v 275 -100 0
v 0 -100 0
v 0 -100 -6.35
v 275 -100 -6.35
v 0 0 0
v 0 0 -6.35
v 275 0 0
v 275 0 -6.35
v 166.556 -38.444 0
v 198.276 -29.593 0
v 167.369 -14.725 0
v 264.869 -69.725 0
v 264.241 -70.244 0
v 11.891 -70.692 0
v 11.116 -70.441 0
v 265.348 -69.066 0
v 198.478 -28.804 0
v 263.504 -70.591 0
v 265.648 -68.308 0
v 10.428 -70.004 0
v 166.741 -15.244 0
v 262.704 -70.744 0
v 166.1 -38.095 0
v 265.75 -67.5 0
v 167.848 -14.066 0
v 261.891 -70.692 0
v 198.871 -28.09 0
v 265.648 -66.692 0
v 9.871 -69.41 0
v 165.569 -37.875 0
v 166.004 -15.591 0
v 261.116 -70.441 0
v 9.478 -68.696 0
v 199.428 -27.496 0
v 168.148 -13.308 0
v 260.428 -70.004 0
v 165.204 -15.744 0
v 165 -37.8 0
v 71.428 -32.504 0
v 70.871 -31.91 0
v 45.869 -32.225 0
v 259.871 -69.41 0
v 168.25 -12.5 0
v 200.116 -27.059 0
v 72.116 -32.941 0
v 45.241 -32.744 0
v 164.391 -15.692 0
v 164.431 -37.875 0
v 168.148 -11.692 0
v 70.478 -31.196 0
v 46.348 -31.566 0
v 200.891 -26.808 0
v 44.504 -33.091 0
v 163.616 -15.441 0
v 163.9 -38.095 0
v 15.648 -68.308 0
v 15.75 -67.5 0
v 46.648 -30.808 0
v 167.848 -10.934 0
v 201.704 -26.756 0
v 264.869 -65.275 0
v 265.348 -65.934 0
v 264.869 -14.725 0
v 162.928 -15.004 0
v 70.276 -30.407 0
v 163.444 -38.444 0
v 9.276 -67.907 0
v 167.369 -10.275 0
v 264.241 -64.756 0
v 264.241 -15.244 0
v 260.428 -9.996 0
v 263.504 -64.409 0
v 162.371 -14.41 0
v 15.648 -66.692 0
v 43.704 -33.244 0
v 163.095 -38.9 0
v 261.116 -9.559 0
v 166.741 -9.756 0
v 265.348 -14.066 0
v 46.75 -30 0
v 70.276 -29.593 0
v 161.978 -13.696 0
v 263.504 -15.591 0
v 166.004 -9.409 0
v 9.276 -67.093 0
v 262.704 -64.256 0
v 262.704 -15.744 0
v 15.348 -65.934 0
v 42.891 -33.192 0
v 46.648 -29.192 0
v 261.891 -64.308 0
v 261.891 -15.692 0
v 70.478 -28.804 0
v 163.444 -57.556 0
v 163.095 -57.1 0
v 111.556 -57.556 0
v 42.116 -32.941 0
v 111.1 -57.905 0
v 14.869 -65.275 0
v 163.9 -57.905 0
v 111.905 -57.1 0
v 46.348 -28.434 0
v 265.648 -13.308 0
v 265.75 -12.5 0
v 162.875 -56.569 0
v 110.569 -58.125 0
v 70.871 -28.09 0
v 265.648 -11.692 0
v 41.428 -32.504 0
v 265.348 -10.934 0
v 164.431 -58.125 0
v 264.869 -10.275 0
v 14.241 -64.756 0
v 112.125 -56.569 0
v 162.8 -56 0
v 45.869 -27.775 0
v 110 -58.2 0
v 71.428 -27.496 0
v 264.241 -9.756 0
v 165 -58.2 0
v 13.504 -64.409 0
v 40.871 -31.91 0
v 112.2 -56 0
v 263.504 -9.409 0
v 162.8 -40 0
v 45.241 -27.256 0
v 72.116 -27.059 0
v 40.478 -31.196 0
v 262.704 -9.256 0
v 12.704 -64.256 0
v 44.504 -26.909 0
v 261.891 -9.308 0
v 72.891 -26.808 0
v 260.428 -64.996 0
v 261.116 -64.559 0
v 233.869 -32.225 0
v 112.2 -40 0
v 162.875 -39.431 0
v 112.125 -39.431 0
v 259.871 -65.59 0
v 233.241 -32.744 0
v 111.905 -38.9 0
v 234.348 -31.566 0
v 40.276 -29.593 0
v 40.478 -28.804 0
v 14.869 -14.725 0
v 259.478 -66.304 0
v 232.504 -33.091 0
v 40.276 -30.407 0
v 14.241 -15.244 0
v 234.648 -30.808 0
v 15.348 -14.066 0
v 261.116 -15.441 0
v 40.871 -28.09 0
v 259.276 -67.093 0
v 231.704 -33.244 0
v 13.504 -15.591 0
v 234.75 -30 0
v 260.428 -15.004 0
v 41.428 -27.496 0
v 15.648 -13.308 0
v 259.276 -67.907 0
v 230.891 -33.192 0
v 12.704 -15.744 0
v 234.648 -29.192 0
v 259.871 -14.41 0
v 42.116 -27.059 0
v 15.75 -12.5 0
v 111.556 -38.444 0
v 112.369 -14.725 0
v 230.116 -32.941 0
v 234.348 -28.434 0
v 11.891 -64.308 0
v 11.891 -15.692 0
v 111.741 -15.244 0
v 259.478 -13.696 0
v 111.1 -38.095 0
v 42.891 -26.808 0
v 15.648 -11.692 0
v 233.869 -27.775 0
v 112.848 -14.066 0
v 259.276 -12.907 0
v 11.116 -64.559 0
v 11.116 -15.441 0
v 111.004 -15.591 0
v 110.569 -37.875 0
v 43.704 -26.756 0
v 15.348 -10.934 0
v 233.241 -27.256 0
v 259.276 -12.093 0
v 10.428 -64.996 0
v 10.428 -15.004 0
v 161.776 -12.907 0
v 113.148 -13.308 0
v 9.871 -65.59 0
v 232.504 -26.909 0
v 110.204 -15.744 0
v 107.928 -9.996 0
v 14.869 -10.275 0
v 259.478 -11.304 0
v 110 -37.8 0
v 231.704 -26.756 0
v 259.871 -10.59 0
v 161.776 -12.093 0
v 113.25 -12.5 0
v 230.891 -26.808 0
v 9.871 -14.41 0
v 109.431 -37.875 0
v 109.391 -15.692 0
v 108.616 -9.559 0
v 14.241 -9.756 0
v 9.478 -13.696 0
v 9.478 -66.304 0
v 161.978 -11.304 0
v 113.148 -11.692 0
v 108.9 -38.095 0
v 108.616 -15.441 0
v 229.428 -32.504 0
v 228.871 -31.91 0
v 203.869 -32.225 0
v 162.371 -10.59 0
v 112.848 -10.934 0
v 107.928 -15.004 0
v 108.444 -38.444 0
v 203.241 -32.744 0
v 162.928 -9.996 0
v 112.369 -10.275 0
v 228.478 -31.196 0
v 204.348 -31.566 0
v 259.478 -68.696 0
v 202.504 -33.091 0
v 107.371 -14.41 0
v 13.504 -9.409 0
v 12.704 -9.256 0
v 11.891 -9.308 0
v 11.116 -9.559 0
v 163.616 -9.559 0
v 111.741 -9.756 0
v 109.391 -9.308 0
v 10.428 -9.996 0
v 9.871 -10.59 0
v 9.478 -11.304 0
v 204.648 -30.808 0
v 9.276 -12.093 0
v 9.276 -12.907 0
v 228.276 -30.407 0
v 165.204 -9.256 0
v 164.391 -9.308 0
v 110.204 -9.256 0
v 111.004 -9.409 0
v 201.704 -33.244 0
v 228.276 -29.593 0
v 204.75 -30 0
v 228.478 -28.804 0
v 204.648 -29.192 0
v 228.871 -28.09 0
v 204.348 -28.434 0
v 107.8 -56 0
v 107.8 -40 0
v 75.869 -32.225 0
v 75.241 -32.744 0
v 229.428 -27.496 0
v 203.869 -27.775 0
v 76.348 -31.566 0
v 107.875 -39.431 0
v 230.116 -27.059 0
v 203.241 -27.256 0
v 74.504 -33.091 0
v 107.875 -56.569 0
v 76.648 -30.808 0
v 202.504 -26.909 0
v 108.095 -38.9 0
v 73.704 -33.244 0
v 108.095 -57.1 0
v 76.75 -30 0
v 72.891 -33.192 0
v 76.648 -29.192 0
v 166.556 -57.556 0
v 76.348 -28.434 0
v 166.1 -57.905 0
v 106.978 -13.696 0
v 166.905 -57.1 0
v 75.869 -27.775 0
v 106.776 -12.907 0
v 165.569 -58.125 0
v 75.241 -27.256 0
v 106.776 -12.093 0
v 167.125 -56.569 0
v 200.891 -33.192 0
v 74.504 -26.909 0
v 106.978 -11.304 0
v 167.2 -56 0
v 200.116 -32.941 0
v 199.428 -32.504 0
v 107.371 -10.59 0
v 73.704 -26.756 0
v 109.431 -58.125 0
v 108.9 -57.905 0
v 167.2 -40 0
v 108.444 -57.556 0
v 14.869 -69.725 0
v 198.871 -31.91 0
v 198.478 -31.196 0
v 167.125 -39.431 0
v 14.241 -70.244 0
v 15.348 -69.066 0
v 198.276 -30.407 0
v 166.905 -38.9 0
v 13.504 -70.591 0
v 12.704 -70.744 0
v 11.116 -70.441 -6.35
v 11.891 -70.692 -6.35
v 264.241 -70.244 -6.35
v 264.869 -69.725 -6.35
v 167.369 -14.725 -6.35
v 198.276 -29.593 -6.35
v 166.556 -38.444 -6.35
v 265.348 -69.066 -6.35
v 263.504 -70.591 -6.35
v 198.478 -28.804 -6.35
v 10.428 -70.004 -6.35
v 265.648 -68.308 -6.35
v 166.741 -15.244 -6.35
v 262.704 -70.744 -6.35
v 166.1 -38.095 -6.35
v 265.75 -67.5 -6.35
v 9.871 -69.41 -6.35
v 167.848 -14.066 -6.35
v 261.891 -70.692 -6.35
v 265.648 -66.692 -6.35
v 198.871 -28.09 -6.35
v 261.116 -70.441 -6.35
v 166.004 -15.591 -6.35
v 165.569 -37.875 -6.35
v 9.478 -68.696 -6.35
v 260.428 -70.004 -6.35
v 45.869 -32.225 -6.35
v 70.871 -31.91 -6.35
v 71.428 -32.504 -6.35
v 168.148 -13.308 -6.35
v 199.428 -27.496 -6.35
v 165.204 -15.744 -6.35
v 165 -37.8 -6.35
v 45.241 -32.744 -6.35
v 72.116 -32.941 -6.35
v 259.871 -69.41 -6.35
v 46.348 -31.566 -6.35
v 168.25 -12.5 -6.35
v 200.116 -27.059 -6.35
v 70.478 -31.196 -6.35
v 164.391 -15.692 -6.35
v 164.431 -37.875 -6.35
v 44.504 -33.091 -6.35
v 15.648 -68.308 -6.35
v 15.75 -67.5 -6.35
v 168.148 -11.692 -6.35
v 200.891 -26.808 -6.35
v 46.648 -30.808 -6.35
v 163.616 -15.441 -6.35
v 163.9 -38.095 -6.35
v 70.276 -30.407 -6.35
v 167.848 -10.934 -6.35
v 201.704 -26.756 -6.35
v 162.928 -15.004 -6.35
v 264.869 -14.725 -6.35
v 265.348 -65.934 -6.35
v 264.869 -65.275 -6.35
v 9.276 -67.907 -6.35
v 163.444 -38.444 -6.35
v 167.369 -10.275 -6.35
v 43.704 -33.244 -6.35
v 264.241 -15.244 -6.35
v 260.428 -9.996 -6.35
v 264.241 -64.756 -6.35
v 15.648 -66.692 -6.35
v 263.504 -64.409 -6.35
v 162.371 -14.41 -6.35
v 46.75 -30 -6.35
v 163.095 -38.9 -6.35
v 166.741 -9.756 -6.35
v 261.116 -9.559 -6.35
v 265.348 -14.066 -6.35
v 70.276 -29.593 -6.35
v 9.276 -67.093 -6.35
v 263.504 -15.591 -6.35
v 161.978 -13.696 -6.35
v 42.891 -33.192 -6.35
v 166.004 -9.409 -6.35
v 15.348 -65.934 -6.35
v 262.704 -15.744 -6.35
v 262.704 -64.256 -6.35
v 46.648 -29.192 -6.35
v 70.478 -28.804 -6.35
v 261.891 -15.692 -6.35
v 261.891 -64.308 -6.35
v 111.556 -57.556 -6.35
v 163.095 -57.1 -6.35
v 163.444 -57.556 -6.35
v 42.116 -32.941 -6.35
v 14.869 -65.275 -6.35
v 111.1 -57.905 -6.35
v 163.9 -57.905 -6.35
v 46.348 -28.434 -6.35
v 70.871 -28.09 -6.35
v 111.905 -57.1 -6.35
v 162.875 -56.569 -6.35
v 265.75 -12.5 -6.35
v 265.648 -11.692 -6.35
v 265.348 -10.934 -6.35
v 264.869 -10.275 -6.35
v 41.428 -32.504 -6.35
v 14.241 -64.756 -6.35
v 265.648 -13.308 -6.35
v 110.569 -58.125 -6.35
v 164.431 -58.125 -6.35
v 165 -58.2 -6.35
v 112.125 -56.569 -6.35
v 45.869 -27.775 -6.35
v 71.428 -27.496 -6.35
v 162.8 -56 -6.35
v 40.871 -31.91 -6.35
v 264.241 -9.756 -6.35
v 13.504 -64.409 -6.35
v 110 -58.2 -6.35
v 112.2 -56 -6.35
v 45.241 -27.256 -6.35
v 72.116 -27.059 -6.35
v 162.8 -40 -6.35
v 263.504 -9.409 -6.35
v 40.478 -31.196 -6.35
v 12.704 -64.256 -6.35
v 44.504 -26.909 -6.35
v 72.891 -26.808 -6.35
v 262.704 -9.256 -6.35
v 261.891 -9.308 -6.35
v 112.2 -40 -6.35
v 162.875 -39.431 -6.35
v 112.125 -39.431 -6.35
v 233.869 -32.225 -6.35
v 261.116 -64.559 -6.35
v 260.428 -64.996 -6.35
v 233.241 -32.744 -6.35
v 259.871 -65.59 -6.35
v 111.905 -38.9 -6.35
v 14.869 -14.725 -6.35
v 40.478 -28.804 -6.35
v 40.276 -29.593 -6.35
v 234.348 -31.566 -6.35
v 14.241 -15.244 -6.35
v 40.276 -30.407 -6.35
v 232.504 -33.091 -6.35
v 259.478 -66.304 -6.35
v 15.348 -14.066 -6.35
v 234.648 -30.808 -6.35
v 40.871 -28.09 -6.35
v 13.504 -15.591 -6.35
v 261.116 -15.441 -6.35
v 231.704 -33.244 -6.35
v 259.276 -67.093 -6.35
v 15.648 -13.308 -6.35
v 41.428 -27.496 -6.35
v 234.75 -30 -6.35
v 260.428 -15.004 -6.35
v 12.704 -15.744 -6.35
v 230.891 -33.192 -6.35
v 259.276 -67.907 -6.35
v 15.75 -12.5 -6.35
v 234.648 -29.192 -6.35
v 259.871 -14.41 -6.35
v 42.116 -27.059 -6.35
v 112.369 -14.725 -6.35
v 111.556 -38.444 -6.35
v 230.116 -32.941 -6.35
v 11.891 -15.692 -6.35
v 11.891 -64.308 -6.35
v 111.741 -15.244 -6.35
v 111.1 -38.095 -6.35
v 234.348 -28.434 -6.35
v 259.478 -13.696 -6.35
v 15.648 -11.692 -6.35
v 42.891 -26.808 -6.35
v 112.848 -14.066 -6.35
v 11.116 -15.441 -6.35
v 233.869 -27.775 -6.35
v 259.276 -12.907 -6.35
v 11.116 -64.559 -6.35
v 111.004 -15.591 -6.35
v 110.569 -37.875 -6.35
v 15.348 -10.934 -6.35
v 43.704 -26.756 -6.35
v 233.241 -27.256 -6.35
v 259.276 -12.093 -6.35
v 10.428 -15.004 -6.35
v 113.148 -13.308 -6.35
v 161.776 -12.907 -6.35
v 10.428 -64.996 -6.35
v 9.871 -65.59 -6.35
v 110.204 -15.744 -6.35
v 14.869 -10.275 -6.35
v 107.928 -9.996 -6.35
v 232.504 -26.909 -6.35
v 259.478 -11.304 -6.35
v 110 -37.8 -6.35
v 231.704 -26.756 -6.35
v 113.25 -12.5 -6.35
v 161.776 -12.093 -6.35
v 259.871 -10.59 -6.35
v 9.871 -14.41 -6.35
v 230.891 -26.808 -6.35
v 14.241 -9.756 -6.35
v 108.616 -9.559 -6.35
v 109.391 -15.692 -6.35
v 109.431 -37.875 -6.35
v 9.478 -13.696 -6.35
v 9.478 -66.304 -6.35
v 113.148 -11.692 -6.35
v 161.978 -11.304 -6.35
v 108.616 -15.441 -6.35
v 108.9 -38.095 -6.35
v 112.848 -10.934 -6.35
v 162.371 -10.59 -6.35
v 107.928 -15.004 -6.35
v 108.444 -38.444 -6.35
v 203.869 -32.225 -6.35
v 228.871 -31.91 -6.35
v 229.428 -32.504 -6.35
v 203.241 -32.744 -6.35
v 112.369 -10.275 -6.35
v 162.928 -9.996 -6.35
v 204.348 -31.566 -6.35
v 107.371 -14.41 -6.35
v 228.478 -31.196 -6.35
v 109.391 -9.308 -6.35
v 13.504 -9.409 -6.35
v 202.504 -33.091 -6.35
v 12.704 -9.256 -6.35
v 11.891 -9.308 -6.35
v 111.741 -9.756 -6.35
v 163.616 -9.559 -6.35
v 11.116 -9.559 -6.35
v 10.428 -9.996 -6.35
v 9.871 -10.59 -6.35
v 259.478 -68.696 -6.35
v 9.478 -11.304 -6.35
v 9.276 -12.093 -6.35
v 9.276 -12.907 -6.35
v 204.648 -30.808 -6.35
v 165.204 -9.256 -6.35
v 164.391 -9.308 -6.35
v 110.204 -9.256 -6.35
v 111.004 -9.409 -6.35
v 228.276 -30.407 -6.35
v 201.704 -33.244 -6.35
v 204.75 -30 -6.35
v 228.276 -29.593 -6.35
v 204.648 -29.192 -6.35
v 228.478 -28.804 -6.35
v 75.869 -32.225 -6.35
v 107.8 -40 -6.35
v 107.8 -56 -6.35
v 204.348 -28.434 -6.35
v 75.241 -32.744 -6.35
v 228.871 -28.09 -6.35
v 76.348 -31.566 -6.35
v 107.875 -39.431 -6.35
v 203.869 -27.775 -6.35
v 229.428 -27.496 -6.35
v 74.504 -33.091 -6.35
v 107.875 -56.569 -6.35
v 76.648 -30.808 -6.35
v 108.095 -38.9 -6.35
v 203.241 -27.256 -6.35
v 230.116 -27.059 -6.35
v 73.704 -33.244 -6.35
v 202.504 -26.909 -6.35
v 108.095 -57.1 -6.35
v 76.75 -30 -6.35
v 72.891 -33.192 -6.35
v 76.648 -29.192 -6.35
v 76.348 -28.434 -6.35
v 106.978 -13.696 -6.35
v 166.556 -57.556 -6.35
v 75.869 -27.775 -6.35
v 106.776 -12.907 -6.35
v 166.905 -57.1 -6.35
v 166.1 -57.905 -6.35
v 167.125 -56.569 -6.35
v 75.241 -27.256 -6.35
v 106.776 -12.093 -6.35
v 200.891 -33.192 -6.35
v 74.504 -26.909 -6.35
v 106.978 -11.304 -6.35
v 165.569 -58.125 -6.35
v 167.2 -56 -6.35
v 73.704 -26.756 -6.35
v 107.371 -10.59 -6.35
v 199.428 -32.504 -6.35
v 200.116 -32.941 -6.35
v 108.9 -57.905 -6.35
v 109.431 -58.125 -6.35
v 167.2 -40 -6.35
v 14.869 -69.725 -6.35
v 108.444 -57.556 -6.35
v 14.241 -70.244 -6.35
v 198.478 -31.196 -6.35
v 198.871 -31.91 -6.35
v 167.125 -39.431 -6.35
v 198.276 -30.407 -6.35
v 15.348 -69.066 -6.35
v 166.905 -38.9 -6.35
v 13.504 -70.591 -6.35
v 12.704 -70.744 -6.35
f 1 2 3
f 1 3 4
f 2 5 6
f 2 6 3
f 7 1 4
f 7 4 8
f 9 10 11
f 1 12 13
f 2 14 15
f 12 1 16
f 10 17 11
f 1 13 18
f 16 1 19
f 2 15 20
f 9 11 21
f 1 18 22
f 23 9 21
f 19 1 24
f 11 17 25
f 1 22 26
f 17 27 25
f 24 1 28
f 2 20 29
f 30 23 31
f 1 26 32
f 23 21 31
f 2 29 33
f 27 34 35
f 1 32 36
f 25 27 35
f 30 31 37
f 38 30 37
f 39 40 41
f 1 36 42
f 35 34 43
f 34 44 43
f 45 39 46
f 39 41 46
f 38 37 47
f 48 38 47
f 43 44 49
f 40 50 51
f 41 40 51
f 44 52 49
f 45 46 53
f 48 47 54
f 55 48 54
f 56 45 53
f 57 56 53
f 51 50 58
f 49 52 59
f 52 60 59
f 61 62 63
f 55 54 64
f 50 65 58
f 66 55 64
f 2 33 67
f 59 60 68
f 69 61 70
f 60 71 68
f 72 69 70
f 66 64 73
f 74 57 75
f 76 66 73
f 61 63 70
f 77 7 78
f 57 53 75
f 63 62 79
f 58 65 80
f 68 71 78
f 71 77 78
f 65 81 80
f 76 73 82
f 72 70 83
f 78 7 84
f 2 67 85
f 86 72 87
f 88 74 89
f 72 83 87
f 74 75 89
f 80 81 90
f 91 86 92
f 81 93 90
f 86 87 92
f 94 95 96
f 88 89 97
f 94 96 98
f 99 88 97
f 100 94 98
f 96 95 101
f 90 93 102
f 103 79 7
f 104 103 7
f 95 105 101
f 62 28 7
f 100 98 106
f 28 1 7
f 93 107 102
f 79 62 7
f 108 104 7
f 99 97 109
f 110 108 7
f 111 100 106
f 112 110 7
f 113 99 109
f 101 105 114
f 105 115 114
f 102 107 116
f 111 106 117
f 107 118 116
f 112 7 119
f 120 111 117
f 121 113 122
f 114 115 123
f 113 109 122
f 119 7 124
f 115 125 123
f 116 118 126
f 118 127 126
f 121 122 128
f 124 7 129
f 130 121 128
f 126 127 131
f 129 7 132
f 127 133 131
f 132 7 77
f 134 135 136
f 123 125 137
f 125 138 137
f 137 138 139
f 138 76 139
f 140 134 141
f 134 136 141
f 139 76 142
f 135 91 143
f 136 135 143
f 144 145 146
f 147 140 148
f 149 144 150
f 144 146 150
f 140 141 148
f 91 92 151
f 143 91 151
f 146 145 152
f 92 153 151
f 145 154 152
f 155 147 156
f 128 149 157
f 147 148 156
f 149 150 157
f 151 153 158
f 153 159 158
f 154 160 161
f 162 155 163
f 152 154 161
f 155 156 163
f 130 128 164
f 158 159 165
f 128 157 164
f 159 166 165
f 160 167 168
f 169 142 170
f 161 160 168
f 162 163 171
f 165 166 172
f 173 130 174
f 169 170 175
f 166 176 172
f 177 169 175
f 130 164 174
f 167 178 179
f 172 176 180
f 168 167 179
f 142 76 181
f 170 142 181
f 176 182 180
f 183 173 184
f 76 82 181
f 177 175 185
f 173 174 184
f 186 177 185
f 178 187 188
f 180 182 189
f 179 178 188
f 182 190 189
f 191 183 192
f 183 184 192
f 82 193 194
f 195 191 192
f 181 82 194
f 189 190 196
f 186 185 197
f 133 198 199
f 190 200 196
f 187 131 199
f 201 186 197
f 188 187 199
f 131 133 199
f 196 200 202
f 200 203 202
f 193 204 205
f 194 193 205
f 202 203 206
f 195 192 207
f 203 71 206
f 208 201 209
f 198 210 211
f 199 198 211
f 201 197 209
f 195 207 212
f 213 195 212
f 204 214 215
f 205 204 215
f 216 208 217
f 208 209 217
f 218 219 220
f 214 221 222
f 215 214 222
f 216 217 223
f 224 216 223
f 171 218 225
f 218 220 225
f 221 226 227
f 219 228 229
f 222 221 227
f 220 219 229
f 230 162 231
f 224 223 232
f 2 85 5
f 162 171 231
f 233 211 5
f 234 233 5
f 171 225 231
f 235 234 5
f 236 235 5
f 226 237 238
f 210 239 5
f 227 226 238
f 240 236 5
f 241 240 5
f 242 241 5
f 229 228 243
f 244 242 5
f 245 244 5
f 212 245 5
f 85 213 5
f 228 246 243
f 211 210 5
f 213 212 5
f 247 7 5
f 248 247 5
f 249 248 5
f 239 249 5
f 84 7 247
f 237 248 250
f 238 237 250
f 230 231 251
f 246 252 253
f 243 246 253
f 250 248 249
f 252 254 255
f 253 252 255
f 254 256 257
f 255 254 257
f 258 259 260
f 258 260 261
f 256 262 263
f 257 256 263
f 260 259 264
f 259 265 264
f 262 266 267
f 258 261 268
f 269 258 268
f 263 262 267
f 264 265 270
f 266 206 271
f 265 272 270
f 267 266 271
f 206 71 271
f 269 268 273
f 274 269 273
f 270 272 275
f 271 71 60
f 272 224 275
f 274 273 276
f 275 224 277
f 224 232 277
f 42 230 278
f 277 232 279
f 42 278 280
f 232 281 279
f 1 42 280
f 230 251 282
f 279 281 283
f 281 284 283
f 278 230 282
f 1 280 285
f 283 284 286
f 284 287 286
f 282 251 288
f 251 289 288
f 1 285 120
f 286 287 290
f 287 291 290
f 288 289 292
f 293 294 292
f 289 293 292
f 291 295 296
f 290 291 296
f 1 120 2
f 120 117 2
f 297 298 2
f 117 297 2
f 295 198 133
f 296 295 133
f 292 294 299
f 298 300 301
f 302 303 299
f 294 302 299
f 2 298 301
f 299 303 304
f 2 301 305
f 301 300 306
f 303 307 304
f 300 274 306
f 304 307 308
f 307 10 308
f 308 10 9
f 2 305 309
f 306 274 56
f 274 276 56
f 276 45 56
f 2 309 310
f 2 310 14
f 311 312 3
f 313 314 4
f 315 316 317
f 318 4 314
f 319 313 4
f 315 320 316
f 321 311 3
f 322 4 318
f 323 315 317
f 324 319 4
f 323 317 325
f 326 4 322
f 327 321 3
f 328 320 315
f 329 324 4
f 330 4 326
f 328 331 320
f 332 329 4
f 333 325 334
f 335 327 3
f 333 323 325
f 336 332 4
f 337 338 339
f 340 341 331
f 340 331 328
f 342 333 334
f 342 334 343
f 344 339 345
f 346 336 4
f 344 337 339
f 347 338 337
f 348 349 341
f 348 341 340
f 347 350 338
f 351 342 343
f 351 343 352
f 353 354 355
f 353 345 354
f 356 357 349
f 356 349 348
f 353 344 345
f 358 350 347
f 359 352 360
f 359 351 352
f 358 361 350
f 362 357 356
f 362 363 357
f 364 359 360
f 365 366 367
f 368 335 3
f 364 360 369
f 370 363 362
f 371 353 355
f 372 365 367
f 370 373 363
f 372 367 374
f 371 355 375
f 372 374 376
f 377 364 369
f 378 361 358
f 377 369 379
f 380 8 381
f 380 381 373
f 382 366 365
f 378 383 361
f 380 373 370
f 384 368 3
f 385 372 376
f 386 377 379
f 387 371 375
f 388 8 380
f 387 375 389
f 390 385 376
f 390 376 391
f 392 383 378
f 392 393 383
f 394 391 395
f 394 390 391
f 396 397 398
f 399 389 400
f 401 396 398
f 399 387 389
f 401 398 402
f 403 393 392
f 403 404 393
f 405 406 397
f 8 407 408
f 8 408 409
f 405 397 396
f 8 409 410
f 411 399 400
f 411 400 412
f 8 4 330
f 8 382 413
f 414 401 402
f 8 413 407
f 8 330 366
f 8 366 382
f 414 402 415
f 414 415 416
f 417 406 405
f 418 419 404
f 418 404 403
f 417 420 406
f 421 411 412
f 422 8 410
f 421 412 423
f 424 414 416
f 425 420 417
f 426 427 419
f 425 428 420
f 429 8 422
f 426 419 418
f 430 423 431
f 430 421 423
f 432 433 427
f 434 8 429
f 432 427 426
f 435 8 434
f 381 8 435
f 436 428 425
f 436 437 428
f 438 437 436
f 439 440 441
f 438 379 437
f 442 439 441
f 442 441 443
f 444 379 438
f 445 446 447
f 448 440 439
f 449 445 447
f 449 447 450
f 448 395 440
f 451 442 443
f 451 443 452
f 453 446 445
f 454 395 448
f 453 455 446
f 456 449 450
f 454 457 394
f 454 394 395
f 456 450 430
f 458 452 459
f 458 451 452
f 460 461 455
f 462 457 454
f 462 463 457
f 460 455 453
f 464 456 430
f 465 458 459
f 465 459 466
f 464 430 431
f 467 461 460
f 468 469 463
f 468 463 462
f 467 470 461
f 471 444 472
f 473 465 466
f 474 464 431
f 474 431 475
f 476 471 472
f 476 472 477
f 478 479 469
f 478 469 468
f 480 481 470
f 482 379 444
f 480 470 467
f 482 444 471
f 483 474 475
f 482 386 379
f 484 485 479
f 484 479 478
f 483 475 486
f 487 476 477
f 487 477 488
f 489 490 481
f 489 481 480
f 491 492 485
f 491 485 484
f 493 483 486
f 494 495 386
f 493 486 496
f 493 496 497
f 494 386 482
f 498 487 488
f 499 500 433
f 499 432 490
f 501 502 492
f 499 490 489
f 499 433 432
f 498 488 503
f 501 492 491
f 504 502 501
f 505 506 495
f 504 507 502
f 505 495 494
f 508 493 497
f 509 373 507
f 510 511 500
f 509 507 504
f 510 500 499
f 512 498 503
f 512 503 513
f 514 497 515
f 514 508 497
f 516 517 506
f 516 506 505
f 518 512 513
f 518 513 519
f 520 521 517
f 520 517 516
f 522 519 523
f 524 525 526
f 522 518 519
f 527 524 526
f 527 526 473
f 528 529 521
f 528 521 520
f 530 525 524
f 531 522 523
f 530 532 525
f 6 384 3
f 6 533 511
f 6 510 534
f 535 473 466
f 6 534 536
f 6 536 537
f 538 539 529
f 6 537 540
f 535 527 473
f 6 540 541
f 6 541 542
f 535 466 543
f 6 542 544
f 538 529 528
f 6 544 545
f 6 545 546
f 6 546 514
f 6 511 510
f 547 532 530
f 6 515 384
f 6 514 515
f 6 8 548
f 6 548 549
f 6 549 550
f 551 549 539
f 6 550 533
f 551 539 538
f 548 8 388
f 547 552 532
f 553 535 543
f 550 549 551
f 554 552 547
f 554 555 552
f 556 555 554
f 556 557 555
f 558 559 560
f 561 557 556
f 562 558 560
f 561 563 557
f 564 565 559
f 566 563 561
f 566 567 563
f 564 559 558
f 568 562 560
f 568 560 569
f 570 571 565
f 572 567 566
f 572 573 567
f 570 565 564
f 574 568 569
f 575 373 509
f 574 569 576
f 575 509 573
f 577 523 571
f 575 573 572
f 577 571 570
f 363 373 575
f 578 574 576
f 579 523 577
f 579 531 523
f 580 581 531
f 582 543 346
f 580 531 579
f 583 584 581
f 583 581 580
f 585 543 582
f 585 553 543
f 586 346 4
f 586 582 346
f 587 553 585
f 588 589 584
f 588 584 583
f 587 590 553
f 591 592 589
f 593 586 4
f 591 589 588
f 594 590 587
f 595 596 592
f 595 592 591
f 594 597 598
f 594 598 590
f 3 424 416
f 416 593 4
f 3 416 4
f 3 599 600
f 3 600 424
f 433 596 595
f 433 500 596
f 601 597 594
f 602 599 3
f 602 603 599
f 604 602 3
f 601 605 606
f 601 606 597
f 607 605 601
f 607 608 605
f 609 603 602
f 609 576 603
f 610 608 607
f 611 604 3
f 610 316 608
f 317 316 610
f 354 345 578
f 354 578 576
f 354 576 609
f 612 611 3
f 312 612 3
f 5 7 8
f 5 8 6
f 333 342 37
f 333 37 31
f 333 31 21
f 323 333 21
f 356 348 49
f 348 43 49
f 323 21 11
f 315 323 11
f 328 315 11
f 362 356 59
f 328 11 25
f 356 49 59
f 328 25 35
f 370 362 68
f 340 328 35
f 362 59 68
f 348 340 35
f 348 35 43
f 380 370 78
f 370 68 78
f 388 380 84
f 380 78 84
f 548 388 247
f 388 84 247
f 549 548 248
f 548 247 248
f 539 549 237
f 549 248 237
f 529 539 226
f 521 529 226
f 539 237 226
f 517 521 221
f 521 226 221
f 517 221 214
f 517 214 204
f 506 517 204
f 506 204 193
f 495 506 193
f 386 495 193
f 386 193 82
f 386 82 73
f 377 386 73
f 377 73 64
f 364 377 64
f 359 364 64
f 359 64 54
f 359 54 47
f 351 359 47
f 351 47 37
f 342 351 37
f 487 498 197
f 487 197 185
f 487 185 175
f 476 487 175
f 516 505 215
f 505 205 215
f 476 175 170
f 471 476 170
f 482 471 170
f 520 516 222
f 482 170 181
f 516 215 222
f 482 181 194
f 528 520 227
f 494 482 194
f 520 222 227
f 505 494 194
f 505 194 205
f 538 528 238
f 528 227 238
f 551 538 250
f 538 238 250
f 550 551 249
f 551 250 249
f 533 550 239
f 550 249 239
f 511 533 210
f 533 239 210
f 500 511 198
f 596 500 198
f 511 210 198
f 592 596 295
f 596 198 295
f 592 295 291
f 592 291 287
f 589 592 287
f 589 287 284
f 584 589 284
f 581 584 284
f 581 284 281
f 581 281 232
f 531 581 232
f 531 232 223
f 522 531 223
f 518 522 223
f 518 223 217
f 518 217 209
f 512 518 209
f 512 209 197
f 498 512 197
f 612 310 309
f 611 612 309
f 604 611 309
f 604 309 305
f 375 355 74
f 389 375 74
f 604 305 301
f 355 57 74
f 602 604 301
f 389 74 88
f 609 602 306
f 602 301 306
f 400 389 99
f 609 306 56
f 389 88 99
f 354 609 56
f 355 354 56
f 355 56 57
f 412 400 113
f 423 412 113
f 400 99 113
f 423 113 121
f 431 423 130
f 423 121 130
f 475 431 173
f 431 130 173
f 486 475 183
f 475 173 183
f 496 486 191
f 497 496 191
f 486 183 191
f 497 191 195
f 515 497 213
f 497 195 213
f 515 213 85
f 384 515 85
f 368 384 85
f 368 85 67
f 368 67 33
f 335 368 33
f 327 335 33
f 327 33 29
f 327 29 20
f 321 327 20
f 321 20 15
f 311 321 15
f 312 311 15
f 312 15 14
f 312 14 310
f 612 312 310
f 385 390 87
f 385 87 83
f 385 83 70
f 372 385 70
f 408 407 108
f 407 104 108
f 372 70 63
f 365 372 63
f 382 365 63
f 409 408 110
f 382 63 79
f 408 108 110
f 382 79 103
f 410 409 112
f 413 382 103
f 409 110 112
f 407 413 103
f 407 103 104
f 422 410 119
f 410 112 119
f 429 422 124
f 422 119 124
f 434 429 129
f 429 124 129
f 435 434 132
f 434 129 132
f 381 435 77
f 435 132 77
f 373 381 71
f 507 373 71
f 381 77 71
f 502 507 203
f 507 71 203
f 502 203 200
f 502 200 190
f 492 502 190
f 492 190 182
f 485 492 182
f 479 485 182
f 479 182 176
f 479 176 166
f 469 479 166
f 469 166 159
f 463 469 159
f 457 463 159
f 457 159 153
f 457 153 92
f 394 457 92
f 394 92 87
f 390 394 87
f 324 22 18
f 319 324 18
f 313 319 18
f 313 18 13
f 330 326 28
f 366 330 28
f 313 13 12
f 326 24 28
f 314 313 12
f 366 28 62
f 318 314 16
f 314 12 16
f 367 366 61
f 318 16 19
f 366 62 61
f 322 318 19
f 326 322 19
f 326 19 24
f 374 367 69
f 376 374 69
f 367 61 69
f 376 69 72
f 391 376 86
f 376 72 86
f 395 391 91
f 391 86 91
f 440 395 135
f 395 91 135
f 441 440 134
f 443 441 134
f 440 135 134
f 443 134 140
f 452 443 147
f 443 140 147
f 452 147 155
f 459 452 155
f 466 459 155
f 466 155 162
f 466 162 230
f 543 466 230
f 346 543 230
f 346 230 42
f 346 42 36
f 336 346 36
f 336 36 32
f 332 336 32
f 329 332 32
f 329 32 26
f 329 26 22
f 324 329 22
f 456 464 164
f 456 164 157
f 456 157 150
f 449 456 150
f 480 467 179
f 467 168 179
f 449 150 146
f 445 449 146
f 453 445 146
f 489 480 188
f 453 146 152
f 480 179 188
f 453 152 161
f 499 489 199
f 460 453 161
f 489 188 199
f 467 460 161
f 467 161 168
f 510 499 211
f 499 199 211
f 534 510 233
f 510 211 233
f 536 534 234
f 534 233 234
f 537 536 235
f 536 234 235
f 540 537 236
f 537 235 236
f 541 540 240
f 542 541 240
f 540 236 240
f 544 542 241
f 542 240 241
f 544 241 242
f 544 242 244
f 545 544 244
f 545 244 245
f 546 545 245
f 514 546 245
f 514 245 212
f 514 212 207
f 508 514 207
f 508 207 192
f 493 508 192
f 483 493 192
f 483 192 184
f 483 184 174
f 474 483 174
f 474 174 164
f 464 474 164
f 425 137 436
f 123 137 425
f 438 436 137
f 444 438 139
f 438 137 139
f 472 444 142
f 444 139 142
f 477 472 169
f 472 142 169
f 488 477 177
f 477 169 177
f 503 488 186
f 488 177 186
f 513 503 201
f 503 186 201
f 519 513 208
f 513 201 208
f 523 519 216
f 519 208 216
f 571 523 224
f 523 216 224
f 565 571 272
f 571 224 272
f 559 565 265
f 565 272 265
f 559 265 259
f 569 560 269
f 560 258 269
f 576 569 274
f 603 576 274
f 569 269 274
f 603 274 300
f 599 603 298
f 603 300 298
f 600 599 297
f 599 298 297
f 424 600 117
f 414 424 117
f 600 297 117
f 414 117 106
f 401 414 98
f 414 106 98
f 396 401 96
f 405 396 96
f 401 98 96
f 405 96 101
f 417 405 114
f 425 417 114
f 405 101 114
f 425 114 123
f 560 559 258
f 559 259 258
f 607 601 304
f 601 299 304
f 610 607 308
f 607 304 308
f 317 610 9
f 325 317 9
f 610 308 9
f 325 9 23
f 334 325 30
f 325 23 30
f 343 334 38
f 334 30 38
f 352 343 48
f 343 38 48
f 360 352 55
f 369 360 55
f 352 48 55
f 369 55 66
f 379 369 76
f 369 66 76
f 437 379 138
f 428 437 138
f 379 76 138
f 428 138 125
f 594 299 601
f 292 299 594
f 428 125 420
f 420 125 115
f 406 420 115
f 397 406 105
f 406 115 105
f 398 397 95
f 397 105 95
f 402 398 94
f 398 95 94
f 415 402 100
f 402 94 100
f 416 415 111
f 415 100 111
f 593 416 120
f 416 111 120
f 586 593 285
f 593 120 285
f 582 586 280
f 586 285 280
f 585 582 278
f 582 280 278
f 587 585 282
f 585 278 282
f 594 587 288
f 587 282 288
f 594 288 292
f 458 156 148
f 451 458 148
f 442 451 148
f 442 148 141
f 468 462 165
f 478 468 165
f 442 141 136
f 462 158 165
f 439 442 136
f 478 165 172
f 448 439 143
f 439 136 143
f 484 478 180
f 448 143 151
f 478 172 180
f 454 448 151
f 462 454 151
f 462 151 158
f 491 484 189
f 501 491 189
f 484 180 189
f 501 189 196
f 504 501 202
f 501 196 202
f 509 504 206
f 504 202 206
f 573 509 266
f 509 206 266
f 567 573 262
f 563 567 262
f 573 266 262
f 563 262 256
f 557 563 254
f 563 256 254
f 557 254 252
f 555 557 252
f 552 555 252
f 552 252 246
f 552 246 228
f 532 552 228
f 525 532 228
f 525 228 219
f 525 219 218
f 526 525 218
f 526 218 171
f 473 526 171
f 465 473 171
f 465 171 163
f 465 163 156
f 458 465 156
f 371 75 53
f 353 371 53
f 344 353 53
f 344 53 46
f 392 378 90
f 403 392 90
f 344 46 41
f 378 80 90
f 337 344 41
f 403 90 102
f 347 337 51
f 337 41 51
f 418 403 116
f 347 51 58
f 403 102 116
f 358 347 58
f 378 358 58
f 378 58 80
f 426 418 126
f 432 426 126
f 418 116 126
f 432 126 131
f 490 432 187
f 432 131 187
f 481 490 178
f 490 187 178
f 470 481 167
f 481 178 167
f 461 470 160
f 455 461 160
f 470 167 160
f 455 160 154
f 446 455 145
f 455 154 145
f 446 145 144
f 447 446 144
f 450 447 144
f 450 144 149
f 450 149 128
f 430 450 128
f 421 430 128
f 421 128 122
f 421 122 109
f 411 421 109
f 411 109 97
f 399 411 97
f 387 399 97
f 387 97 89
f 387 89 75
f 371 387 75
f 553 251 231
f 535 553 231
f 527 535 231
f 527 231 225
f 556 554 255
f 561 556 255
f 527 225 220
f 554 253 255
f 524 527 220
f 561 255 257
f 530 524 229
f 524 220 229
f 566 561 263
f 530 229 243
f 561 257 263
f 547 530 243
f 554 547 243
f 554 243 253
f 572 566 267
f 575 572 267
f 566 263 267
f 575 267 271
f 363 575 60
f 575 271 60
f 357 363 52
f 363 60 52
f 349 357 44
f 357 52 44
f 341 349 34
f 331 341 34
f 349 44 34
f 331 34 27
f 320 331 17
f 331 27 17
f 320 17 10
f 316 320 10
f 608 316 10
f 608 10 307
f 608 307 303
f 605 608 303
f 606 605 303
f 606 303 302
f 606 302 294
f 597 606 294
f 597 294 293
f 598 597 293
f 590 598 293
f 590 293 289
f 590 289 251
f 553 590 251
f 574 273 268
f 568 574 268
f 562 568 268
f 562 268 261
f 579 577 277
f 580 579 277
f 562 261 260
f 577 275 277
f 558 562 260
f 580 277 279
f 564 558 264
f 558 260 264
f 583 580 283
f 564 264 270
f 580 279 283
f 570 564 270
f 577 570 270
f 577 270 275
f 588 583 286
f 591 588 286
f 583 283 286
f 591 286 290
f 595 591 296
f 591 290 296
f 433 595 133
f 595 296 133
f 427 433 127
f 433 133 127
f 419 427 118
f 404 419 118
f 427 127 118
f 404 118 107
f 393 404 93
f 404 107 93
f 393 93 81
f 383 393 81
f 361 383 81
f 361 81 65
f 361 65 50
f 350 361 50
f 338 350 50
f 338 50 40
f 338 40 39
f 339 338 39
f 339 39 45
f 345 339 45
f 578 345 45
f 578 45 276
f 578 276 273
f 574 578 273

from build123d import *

# Parameters (mm, degrees)
SKETCH003_W     = 275
SKETCH003_H     = 100
PAD_DEPTH       = 6.35
SKETCH_R        = 3.25
POCKET_DEPTH    = 6.351
SKETCH004_R     = 3.25
POCKET001_DEPTH = 6.351
POCKET002_DEPTH = 6.351
SKETCH007_R     = 3.25
POCKET003_DEPTH = 6.351


with BuildPart() as part:
    # Sketch003 → Pad (new body)
    with BuildSketch(Plane(origin=(0, 0, 0), x_dir=(1, 0, 0), z_dir=(0, 0, -1))):
        with Locations((137.5, 50)):
            Rectangle(SKETCH003_W, SKETCH003_H)
    extrude(amount=PAD_DEPTH)

    # Sketch → Pocket (cut, through all)
    with BuildSketch(Plane.XY):
        with Locations((110, -12.5)):
            Circle(SKETCH_R)
        with Locations((165, -12.5)):
            Circle(SKETCH_R)
    extrude(amount=-POCKET_DEPTH, mode=Mode.SUBTRACT)

    # Sketch004 → Pocket001 (cut, through all)
    with BuildSketch(Plane.XY):
        with Locations((12.5, -12.5)):
            Circle(SKETCH004_R)
        with Locations((12.5, -67.5)):
            Circle(SKETCH004_R)
        with Locations((262.5, -12.5)):
            Circle(SKETCH004_R)
        with Locations((262.5, -67.5)):
            Circle(SKETCH004_R)
    extrude(amount=-POCKET001_DEPTH, mode=Mode.SUBTRACT)

    # Sketch005 → Pocket002 (cut, through all)
    with BuildSketch(Plane.XY):
        with BuildLine():
            ThreePointArc((112.2, -39.999985), (110, -37.8), (107.8, -39.999985))
            Line((107.8, -39.999985), (107.8, -55.999992))
            ThreePointArc((107.8, -55.999992), (110, -58.2), (112.2, -55.999992))
            Line((112.2, -39.999985), (112.2, -55.999992))
        make_face()
        with BuildLine():
            ThreePointArc((167.2, -39.999991), (165, -37.8), (162.8, -39.999991))
            Line((162.8, -39.999991), (162.8, -55.999999))
            ThreePointArc((162.8, -55.999999), (165, -58.2), (167.2, -55.999999))
            Line((167.2, -39.999991), (167.2, -55.999999))
        make_face()
    extrude(amount=-POCKET002_DEPTH, mode=Mode.SUBTRACT)

    # Sketch007 → Pocket003 (cut, through all)
    with BuildSketch(Plane.XY):
        with Locations((43.5, -30)):
            Circle(SKETCH007_R)
        with Locations((73.5, -30)):
            Circle(SKETCH007_R)
        with Locations((201.5, -30)):
            Circle(SKETCH007_R)
        with Locations((231.5, -30)):
            Circle(SKETCH007_R)
    extrude(amount=-POCKET003_DEPTH, mode=Mode.SUBTRACT)


solid = part.part
